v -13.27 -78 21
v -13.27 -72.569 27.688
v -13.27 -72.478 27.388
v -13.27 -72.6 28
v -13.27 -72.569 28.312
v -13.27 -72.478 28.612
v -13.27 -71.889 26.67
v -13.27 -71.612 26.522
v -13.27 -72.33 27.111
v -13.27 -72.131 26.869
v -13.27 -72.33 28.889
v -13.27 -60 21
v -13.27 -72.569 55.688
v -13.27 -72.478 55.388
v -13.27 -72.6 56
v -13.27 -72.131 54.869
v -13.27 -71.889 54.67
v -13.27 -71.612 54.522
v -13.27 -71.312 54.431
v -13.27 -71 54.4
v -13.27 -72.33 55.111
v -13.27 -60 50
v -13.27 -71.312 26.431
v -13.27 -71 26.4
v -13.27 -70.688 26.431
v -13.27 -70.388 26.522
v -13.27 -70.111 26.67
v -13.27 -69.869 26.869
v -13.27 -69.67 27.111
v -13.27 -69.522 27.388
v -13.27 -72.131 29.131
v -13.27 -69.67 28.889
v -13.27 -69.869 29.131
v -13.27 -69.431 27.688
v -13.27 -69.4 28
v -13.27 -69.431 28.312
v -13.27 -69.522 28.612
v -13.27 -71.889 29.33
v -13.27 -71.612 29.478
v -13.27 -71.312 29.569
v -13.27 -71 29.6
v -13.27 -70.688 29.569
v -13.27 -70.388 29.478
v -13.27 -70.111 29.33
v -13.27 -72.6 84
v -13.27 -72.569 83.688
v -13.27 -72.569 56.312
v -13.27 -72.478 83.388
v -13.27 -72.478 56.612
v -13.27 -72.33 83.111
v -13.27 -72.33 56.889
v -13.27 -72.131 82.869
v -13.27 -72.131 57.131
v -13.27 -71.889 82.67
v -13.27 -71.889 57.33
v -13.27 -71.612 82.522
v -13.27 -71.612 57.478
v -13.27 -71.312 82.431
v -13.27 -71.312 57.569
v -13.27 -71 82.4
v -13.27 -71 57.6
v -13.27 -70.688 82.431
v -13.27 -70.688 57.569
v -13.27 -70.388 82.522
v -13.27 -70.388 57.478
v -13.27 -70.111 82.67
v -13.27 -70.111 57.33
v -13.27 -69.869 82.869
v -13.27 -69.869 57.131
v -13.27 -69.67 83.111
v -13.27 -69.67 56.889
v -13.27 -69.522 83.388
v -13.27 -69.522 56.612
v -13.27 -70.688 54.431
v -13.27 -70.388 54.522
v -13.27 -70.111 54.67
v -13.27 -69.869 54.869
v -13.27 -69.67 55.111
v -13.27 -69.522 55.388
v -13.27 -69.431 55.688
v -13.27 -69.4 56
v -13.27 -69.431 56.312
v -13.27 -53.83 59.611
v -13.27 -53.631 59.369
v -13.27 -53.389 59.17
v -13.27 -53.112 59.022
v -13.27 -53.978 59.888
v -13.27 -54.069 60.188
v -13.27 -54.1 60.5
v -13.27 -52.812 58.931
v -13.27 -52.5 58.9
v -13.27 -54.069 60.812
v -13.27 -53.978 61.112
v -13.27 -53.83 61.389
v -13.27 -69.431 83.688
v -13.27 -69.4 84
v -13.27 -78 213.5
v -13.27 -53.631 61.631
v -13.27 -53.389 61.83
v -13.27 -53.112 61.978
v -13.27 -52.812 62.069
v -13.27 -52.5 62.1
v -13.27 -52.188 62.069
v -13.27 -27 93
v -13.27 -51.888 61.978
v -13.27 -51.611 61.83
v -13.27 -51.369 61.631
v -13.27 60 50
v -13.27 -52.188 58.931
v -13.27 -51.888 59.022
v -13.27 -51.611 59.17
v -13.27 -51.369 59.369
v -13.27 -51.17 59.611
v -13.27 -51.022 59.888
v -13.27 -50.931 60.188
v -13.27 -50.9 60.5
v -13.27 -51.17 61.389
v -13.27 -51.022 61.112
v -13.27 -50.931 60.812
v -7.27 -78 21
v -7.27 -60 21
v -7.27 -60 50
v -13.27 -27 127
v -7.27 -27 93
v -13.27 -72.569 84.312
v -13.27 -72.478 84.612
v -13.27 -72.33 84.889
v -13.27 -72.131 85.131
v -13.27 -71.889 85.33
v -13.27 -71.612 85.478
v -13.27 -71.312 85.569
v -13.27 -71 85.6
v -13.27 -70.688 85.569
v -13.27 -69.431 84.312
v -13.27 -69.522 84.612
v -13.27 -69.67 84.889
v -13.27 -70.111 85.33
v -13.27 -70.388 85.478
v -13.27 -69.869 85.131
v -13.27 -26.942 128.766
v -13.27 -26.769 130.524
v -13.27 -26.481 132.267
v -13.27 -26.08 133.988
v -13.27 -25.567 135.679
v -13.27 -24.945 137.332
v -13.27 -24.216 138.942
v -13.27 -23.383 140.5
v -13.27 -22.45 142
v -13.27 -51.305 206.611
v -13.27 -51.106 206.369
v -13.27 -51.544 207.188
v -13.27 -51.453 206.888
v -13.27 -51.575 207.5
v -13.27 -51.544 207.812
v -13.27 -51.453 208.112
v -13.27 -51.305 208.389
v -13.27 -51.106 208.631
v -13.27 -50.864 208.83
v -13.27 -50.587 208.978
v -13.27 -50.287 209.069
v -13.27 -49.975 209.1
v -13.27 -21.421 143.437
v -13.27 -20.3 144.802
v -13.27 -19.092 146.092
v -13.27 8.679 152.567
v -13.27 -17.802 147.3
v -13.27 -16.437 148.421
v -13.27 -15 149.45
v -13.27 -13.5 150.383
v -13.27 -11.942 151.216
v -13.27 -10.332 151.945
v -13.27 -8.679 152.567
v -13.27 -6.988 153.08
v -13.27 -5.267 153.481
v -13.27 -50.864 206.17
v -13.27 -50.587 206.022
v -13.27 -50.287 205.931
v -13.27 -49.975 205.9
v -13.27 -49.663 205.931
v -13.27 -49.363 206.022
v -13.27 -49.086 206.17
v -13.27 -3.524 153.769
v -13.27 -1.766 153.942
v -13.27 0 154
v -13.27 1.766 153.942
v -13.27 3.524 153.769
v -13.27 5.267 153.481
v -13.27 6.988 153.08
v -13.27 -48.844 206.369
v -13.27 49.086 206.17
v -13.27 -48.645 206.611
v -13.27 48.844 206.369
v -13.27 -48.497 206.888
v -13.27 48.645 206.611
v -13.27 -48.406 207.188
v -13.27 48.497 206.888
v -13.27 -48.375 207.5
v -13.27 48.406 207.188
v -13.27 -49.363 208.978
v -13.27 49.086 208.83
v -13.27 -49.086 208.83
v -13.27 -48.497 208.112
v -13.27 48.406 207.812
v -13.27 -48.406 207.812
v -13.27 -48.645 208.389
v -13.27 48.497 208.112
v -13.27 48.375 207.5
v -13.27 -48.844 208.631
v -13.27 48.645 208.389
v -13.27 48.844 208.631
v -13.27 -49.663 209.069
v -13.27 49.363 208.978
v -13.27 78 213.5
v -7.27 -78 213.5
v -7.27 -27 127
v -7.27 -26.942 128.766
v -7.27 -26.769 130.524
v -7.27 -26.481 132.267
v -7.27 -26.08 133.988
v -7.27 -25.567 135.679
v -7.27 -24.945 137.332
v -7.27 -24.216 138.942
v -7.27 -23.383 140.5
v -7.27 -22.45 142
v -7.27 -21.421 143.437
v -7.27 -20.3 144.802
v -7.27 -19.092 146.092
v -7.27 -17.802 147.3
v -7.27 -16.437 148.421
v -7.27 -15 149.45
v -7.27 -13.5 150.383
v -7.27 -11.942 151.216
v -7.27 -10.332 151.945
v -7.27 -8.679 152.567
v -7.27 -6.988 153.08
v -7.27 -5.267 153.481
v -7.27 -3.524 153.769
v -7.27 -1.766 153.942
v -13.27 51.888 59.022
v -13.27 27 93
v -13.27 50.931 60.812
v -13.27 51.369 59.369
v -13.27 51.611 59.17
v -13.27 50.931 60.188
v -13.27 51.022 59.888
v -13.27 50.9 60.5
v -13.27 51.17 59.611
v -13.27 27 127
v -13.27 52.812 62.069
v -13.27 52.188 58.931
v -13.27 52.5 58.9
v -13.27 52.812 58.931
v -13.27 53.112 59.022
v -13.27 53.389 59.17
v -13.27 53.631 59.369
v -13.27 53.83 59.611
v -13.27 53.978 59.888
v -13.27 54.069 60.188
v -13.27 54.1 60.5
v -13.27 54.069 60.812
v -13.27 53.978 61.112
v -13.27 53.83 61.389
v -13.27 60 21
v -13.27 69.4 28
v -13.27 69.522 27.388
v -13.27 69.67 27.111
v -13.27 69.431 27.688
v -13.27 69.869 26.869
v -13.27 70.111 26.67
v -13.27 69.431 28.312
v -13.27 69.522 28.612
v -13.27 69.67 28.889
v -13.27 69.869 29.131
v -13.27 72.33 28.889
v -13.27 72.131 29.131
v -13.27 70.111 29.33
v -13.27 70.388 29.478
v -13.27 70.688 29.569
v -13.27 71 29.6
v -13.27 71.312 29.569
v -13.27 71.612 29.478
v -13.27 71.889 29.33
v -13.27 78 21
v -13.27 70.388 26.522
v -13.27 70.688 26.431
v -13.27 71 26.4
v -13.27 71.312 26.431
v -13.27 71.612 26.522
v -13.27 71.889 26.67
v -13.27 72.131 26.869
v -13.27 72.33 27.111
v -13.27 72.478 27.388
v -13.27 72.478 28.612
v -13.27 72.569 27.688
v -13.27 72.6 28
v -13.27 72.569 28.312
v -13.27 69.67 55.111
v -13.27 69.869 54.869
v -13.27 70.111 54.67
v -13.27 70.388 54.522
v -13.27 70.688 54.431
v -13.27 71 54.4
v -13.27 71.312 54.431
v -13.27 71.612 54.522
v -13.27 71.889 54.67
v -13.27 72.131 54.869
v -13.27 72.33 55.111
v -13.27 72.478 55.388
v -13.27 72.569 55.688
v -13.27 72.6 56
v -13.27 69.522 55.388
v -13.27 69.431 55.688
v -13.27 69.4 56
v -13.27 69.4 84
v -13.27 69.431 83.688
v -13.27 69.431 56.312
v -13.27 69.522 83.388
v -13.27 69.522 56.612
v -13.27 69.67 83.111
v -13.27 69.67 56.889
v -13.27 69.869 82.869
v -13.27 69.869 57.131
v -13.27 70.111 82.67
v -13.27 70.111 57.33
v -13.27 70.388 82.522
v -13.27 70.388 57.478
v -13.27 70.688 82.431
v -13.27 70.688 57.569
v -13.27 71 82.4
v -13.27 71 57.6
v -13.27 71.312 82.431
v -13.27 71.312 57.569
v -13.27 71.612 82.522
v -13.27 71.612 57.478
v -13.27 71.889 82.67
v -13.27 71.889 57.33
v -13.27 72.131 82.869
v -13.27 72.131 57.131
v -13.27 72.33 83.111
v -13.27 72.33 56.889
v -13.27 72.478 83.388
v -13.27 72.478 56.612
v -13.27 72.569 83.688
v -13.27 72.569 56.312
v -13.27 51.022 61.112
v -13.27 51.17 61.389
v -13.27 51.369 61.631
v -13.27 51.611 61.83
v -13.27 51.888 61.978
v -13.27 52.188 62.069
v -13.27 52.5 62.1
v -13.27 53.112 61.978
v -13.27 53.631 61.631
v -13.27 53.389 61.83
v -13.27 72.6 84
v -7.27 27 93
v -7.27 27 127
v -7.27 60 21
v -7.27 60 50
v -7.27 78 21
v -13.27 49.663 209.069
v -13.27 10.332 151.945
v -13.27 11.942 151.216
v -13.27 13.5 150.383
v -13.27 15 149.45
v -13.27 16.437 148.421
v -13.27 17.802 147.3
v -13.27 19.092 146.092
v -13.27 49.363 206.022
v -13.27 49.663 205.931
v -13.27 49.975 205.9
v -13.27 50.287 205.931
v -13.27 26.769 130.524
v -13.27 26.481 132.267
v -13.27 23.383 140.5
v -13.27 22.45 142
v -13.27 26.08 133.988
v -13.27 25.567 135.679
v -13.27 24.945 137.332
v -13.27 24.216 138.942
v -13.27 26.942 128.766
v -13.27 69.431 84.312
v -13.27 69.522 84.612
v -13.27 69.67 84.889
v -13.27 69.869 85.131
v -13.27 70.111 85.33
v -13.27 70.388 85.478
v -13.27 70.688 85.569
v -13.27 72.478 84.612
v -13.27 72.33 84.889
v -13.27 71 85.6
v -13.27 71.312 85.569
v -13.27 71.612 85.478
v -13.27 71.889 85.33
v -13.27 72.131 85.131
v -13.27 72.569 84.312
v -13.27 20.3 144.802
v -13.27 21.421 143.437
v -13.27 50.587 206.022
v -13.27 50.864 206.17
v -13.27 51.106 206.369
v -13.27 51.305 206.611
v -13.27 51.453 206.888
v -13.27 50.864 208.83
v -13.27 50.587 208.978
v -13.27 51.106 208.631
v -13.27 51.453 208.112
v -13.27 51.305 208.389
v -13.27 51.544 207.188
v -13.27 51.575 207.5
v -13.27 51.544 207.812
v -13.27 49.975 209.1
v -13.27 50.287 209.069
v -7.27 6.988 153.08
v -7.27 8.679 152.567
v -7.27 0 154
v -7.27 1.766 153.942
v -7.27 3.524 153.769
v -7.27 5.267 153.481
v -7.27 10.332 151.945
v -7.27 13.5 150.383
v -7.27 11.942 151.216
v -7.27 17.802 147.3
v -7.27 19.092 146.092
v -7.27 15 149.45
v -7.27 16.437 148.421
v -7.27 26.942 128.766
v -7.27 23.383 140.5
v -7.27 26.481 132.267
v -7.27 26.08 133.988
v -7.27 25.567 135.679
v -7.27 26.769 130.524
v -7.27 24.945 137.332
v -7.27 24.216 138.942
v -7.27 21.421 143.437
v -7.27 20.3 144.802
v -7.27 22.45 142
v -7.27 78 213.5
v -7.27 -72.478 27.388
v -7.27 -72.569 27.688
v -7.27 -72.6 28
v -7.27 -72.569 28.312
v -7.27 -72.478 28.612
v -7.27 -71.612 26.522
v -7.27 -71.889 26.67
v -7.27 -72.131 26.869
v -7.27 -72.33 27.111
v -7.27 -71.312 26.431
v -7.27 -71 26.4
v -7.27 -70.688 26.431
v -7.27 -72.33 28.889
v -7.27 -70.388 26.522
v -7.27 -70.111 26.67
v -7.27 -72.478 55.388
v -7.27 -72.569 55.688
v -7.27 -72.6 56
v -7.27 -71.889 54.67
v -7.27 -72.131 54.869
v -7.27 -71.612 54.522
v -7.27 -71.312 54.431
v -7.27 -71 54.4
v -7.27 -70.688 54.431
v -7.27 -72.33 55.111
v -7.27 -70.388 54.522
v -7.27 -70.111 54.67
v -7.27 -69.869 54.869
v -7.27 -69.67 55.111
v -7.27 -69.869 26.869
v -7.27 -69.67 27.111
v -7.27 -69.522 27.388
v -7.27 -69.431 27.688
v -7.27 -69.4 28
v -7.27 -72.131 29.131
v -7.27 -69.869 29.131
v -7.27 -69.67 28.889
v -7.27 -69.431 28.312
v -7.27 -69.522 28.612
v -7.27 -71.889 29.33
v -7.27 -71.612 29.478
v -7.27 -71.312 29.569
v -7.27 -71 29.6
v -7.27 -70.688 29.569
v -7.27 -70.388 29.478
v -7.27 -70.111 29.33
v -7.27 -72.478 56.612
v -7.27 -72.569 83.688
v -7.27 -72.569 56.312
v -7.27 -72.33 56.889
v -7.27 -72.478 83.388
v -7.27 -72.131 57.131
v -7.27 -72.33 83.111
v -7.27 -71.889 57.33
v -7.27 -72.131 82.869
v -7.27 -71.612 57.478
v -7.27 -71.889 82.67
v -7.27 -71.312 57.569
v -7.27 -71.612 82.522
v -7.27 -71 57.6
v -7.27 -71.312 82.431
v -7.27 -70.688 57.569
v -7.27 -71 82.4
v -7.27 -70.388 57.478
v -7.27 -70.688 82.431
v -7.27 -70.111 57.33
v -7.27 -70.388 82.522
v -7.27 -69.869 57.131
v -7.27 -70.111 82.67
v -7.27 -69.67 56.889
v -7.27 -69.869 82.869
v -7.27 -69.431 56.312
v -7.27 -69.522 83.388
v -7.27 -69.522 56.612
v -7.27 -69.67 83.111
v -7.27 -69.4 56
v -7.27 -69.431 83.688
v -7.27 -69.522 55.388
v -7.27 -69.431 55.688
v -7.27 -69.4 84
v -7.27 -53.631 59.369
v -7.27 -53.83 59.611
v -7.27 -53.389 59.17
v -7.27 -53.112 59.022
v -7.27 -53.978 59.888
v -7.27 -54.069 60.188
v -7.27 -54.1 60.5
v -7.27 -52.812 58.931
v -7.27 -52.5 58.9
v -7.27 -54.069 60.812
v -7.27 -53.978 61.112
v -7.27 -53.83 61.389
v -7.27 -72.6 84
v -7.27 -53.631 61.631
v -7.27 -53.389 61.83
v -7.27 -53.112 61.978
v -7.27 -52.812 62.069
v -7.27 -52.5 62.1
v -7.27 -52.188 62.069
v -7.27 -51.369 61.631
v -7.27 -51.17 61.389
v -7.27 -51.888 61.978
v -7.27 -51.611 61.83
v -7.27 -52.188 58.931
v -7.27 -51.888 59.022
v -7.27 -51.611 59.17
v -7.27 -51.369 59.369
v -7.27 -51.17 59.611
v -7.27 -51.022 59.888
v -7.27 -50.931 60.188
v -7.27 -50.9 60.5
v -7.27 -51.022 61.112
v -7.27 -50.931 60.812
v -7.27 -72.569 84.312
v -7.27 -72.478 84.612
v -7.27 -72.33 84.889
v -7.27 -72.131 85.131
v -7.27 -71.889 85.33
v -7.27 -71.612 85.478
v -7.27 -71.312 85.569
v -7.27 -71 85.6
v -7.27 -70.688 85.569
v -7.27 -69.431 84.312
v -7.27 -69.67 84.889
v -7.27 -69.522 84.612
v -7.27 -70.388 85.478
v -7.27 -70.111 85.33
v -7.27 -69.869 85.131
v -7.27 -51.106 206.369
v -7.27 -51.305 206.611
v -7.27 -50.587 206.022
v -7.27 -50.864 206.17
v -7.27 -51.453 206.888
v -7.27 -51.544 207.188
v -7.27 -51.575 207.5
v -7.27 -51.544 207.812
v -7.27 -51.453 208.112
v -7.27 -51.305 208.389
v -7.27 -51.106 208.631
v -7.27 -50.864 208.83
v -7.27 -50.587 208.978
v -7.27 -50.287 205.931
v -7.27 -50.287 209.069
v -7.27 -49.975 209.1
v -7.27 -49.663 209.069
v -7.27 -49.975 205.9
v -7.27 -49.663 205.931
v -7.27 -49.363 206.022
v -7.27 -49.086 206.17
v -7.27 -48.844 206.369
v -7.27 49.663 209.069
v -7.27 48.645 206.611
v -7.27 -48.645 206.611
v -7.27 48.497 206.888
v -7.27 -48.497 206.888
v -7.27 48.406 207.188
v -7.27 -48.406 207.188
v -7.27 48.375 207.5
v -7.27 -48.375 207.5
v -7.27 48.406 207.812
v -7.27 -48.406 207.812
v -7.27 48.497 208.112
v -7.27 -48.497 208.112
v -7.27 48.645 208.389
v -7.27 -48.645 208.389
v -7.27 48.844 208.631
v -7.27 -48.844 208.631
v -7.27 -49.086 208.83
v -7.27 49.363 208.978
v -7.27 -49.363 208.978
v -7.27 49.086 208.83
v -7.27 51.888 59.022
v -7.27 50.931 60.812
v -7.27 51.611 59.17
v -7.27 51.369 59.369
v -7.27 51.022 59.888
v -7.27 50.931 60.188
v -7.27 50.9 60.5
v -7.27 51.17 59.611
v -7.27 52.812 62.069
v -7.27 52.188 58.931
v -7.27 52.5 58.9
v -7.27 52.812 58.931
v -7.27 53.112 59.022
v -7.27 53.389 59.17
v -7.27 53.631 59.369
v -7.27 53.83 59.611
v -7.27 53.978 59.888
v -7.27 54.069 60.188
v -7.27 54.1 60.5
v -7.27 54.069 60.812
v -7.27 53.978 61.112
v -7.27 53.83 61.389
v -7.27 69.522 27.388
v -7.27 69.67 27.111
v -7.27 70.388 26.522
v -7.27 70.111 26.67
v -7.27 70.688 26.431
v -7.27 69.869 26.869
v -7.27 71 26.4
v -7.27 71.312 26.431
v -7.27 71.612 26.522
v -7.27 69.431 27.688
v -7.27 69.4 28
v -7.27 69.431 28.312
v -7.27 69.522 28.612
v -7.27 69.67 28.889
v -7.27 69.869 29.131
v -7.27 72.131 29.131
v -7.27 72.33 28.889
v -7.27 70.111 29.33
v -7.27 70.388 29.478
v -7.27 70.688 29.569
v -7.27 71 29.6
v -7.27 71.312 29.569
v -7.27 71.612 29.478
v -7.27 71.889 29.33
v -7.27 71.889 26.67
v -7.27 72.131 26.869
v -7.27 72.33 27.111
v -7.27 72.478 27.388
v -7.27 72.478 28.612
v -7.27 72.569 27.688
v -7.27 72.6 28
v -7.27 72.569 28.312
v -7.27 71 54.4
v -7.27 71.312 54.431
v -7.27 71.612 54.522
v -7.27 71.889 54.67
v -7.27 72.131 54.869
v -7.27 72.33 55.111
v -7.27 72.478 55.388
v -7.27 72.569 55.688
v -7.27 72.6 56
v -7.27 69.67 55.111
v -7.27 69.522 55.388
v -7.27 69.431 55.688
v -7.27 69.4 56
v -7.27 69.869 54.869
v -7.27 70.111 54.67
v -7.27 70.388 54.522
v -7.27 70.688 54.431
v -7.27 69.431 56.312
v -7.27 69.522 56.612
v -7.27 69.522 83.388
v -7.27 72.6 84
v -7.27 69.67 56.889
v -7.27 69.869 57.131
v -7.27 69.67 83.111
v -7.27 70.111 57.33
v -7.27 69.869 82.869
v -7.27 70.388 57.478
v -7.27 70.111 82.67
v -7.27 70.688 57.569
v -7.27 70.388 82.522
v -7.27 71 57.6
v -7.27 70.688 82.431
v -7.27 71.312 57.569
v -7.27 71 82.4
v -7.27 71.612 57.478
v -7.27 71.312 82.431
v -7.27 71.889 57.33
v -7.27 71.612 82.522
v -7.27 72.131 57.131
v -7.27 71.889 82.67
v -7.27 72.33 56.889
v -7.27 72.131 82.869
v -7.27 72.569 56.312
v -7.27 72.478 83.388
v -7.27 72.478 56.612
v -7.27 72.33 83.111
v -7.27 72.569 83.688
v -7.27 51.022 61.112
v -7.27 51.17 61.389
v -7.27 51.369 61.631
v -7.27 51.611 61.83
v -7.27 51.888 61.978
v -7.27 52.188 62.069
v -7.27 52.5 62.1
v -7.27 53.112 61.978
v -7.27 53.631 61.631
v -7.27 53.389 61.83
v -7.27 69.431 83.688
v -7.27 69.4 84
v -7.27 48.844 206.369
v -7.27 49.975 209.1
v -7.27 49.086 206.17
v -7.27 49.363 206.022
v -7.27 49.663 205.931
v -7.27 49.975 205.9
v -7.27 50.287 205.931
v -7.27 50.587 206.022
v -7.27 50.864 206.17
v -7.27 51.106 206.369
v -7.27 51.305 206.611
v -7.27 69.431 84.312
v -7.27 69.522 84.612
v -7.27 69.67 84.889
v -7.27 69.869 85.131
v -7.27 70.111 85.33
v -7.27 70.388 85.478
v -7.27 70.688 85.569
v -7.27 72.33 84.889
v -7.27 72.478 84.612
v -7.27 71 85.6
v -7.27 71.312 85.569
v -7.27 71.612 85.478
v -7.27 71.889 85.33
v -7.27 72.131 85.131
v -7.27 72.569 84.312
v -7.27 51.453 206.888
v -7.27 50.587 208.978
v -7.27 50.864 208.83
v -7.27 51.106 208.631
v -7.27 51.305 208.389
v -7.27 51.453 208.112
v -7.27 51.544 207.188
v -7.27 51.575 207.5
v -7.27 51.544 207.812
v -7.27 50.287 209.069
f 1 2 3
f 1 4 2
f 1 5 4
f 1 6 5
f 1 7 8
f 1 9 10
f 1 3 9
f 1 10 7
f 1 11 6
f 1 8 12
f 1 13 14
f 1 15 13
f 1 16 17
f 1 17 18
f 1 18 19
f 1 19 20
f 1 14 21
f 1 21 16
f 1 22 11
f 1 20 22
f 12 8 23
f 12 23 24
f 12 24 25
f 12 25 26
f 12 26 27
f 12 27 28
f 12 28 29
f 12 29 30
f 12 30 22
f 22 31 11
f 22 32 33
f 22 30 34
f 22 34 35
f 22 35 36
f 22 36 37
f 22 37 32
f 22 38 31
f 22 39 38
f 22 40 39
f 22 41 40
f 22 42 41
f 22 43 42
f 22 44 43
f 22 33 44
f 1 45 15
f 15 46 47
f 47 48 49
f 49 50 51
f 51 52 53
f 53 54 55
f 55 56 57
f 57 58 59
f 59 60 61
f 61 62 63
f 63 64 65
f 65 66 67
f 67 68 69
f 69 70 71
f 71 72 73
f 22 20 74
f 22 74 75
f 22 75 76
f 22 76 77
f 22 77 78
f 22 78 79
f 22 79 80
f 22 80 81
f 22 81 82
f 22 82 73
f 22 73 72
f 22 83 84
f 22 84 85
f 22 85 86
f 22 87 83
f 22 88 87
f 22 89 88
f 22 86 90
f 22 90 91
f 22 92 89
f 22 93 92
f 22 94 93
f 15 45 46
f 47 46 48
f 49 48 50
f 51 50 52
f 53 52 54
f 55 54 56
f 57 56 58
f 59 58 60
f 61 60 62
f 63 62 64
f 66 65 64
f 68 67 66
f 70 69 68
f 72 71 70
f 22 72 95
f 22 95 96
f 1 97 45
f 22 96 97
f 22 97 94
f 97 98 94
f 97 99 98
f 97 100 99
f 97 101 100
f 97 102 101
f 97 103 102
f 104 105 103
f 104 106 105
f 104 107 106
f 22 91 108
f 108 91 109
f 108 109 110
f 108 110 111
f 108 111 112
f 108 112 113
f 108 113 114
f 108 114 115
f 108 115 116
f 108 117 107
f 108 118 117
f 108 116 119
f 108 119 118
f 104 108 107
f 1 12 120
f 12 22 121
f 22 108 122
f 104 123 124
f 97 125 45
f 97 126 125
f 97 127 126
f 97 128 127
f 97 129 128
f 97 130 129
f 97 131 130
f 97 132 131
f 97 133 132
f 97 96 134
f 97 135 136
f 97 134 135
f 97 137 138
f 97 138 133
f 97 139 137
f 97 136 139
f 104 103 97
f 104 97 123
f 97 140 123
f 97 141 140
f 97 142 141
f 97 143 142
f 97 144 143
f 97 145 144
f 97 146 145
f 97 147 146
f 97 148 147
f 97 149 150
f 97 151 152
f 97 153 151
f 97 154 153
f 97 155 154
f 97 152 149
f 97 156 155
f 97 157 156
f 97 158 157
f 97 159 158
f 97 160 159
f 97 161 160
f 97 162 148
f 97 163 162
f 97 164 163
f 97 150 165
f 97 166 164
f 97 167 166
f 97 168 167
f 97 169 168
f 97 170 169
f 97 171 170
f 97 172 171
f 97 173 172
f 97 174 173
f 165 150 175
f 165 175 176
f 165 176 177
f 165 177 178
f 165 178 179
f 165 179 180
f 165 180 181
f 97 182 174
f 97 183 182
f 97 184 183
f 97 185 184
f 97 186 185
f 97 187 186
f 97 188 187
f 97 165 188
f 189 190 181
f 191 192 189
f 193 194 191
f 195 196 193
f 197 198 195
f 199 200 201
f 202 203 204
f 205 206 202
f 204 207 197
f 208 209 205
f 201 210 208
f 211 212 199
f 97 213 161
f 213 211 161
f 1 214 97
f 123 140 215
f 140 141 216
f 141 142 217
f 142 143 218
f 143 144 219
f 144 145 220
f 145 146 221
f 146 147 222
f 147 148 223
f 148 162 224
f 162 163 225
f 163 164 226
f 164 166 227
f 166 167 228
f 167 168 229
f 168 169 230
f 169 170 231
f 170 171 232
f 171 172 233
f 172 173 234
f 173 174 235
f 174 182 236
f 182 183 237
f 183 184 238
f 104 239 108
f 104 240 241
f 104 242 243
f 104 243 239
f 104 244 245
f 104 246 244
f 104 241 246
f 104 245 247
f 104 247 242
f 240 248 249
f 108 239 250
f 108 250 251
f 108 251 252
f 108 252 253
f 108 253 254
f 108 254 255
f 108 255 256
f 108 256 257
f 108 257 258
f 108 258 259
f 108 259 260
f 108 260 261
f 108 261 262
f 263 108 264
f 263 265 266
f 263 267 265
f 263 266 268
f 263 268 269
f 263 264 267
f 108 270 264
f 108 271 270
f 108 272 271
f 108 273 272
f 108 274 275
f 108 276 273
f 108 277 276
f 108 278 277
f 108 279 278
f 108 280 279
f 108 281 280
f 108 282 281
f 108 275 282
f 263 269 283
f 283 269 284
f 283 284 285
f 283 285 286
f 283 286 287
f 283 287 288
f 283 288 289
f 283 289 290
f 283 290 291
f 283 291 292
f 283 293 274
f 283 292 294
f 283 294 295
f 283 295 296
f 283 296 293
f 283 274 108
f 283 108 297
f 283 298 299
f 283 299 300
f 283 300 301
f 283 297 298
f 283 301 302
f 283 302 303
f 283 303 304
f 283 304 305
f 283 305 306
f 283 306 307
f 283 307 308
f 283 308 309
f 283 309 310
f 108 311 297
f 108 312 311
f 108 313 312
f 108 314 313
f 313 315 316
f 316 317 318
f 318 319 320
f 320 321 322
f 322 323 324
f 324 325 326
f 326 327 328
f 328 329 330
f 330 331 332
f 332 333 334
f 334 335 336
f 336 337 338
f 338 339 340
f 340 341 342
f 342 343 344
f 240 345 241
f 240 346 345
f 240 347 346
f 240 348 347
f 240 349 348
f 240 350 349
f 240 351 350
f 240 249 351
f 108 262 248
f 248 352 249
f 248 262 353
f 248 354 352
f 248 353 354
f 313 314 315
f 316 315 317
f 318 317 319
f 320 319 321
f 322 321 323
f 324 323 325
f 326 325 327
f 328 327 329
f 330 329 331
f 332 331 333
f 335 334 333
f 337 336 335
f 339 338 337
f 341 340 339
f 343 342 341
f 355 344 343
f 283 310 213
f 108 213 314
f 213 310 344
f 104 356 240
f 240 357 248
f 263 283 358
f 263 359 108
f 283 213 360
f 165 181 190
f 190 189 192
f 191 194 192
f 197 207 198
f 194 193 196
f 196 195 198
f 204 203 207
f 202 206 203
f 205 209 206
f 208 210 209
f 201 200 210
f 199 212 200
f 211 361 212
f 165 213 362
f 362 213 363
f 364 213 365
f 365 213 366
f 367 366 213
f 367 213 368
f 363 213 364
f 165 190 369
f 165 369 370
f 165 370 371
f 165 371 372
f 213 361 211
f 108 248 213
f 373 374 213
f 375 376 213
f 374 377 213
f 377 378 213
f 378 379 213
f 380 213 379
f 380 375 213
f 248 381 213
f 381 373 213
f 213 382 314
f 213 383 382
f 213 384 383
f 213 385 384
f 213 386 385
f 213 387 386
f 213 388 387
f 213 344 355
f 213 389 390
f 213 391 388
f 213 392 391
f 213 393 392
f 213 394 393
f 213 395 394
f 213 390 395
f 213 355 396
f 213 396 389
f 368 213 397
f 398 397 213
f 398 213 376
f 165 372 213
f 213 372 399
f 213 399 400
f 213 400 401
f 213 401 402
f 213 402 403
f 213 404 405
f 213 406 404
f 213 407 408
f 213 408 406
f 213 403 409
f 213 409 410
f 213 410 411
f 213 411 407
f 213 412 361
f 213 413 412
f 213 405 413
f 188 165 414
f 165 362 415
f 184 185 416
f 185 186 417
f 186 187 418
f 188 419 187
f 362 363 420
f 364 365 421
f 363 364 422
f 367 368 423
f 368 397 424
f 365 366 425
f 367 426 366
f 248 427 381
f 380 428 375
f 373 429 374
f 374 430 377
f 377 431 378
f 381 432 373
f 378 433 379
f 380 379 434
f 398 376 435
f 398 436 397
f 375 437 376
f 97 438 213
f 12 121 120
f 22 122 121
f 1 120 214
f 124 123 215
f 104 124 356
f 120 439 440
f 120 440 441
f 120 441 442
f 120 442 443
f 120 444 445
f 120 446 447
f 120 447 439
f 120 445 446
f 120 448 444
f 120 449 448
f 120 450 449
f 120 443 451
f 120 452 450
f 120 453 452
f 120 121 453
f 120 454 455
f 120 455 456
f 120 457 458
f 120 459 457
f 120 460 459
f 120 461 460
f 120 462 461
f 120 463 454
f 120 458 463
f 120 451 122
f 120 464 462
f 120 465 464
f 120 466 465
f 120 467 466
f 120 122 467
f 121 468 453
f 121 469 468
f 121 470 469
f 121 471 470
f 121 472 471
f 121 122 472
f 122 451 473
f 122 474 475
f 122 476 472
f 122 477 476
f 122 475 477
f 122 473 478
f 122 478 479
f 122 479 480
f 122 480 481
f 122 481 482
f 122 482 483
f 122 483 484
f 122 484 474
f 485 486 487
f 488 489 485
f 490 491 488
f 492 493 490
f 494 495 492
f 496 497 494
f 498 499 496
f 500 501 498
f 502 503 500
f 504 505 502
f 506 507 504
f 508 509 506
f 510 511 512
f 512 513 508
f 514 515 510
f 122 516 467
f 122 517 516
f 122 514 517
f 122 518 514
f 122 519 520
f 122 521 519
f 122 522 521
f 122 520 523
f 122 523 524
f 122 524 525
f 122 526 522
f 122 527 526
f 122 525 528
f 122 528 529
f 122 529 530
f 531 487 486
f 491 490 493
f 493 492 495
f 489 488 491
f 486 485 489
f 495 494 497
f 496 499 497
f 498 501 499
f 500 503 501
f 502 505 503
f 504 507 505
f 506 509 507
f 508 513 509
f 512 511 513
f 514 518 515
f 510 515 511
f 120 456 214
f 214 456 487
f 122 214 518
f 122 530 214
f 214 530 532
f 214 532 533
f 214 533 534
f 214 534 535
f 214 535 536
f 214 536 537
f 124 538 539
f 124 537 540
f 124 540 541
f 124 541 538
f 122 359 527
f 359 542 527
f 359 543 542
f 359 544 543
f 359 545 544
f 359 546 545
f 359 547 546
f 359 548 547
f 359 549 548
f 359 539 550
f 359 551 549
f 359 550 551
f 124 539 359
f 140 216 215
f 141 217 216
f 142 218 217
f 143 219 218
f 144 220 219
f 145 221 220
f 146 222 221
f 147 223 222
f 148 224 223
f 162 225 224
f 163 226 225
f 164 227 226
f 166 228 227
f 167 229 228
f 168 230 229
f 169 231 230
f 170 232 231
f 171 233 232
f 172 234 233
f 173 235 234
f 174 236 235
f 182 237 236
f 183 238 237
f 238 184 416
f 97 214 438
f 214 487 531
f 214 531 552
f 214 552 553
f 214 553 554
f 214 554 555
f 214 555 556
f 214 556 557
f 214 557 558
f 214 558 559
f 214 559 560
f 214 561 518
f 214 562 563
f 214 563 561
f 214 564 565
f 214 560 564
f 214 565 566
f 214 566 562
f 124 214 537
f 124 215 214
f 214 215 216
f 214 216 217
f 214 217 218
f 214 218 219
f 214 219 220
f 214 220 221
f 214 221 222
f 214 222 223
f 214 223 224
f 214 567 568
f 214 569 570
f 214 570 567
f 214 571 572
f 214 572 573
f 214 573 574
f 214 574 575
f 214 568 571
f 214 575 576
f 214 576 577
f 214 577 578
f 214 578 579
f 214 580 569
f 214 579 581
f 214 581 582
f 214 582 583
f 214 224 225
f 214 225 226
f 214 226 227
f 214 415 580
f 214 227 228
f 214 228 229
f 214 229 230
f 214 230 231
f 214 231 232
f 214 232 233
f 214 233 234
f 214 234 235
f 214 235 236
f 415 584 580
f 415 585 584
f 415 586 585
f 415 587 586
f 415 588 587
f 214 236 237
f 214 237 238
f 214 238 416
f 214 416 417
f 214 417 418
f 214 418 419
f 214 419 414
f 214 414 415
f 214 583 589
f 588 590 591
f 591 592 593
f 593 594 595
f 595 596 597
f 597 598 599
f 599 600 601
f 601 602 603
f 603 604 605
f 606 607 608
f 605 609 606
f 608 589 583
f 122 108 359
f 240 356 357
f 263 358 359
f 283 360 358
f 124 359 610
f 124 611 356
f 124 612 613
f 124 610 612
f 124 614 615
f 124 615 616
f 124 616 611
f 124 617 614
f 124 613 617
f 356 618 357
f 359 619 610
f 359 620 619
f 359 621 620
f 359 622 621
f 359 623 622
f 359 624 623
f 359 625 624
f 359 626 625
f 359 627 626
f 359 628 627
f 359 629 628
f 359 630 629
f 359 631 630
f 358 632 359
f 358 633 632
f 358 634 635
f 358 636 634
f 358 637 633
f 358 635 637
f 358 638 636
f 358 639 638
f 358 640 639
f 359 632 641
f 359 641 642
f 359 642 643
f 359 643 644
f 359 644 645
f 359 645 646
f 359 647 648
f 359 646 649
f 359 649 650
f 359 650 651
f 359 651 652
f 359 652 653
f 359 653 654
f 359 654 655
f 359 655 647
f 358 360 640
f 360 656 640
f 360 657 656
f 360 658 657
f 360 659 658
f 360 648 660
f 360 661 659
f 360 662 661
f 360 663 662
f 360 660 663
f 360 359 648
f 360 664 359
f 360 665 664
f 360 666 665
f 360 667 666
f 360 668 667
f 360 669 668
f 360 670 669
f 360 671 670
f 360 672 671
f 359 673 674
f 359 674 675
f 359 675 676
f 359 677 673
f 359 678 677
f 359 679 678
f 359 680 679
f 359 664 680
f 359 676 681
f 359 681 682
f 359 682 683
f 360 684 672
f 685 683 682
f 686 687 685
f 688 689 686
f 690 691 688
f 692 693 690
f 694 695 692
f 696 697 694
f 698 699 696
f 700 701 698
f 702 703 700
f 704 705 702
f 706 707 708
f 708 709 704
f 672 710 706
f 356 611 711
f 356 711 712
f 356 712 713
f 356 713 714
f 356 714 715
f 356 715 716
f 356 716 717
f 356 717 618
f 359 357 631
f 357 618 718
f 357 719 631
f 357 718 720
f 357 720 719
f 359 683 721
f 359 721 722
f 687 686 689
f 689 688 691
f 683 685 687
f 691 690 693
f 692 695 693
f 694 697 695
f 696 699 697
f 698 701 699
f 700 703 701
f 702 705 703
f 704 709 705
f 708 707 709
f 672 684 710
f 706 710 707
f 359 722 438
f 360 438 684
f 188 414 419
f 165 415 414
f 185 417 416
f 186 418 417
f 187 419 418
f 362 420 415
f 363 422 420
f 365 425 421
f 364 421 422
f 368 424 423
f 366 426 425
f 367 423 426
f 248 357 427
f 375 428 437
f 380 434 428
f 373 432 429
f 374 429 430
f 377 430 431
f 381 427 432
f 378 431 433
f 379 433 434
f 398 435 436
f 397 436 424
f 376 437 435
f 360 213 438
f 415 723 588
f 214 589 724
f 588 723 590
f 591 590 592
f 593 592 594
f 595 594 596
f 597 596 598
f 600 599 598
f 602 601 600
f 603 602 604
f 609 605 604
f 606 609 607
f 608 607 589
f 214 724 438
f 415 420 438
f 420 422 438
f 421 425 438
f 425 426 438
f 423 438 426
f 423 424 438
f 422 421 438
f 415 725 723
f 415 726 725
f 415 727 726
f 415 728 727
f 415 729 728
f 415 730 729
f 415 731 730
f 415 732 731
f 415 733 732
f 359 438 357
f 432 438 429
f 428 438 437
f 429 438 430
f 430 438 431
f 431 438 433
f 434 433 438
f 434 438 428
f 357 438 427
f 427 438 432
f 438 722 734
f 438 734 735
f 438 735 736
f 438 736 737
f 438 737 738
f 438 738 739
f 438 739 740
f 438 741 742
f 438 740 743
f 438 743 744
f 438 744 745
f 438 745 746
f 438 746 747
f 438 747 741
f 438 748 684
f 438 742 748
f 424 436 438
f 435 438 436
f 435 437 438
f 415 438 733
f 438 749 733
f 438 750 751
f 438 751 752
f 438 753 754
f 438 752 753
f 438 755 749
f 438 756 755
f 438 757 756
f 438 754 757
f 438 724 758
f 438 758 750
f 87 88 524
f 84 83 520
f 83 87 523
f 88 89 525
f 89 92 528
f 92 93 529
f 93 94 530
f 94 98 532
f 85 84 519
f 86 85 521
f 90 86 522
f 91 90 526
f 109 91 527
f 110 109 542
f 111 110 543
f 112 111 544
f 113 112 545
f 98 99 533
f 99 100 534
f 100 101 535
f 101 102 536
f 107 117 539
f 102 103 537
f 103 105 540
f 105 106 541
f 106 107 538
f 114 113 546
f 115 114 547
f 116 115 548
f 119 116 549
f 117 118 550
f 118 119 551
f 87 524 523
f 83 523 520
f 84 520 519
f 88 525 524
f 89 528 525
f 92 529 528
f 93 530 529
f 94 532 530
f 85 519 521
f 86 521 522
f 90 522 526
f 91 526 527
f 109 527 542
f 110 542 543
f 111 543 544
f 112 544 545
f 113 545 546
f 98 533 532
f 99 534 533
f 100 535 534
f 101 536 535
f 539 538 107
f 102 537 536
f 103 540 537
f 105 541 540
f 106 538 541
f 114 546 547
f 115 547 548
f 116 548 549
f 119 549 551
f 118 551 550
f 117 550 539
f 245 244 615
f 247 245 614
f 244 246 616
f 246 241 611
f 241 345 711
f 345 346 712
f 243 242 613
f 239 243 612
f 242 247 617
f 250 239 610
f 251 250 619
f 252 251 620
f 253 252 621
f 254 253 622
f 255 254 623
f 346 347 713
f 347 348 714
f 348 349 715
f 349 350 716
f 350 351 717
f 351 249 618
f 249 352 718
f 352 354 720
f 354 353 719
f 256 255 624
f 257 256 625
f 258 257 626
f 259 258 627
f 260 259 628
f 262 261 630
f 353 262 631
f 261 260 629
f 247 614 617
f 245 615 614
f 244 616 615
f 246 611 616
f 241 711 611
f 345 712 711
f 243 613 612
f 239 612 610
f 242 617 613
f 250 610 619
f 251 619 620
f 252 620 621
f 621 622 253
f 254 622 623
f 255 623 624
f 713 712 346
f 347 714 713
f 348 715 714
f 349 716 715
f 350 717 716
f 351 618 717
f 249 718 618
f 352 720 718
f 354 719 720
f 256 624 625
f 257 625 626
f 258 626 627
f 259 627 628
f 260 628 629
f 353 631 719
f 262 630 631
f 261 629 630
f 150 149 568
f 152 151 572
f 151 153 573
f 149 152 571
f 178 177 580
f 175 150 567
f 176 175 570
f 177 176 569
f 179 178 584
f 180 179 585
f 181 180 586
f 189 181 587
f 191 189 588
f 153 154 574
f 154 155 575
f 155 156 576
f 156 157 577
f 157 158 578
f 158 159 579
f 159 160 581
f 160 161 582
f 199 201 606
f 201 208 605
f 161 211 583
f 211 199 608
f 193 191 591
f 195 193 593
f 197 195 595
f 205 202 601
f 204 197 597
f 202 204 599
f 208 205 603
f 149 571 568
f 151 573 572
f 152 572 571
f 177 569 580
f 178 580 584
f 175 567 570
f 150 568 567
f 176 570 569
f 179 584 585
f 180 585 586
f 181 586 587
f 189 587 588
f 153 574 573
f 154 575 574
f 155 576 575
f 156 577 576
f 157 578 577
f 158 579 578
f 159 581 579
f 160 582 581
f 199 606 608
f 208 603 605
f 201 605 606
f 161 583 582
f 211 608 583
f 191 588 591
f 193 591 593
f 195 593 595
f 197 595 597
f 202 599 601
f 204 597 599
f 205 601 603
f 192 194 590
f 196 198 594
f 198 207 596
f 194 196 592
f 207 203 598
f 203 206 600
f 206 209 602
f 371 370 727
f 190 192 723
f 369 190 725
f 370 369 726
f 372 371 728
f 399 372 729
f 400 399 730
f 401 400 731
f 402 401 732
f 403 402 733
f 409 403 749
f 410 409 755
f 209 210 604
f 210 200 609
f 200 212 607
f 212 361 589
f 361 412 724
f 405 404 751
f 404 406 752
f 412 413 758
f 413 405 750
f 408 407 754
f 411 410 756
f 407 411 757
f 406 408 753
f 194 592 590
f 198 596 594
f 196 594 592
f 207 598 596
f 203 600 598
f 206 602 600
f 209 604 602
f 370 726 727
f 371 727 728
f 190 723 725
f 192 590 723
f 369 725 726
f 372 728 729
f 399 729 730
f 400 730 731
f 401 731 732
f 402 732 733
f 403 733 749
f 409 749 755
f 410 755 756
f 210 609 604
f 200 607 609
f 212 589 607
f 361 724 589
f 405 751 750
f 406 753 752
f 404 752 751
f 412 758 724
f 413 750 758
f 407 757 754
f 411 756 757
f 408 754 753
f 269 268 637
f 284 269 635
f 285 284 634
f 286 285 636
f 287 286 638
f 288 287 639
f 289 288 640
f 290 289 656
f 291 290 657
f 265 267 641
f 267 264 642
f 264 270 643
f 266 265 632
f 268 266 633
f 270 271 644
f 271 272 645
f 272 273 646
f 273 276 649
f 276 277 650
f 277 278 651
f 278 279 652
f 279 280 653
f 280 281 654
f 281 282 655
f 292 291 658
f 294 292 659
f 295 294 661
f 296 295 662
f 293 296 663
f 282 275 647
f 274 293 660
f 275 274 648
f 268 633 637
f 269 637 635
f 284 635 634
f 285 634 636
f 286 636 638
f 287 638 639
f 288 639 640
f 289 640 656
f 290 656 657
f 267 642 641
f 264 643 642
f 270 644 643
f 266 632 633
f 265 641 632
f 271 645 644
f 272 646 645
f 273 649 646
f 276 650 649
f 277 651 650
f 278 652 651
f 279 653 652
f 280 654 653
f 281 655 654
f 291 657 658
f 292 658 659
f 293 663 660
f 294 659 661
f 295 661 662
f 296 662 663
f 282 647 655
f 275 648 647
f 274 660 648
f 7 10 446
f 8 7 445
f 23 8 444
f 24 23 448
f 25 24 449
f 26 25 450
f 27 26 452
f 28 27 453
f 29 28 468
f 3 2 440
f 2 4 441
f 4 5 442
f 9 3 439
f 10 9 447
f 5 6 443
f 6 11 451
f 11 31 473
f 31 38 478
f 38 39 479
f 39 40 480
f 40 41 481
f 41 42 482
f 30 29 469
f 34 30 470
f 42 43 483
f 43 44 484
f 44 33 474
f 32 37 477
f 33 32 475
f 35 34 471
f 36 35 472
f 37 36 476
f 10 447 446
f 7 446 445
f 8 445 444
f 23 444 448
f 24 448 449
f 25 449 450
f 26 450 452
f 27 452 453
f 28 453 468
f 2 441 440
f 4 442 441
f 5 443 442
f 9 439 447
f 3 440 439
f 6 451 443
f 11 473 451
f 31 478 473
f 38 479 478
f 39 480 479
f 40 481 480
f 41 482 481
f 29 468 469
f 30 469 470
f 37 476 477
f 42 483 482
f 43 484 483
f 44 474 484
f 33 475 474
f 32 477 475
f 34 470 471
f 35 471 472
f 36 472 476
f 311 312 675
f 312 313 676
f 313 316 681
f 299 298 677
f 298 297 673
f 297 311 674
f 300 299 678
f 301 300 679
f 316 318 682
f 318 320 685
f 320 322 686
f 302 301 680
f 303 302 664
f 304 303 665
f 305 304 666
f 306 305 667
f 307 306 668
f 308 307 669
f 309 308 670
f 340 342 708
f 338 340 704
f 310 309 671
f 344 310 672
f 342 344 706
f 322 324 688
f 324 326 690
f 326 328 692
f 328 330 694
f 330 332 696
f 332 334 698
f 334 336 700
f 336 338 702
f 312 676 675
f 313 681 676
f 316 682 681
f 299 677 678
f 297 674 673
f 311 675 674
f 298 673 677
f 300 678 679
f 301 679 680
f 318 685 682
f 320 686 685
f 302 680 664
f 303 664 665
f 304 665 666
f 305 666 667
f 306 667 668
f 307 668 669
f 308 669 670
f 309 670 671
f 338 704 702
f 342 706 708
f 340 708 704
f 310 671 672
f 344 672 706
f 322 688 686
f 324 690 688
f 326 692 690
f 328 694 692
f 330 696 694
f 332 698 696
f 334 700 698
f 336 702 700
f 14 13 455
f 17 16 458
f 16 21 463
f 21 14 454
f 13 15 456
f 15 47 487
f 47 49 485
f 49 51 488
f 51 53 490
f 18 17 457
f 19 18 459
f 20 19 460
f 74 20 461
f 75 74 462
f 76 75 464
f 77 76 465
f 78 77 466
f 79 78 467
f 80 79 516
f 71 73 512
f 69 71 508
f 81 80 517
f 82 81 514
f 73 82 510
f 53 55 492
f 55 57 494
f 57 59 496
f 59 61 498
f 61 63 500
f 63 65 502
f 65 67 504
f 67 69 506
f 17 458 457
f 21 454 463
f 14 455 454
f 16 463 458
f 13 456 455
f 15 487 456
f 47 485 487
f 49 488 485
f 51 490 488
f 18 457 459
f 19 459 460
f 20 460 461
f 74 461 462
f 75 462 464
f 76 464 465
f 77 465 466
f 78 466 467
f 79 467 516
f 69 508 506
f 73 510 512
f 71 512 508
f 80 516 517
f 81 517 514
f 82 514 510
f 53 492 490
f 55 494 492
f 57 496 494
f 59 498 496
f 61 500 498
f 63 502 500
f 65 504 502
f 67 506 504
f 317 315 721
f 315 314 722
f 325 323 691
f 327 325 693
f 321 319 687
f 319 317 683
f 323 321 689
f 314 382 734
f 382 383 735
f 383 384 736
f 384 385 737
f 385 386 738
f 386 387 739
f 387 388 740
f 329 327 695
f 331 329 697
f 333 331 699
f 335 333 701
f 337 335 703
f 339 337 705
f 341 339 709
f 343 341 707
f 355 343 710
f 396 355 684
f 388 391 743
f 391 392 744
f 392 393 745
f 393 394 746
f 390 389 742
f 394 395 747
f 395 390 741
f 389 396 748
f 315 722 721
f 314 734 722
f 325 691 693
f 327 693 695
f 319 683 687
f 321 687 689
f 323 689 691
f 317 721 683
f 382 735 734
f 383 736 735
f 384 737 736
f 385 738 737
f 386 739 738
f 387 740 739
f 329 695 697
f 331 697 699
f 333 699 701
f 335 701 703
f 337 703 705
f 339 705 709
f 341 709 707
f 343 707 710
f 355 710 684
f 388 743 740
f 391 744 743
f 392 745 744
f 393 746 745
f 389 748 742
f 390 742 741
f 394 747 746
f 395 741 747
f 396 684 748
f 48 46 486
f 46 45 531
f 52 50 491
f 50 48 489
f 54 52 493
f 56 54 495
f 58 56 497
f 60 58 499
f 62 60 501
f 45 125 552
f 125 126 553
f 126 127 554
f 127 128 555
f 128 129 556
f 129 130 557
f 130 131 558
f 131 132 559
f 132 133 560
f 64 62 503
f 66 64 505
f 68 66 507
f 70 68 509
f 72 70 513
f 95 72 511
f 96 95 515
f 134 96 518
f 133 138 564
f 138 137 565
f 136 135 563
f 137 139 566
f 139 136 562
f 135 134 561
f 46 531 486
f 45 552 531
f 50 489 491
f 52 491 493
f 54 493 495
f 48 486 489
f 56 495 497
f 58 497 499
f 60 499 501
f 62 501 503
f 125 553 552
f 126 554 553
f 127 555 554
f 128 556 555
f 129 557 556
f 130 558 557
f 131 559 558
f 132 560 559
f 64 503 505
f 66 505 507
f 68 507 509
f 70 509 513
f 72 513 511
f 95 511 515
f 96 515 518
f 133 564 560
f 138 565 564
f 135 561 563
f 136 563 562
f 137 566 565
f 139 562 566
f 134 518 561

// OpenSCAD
// screen_plate — v2 屏幕支架两件套: 屏幕板 (与 build_plate.py 同参)
// 局部系 = 盘坐标系, Z0 = 盘顶面; 板 X -13.27..-7.27, Y ±78, Z 21..213.5
// 屏底沿=盘面+50; 板底中央 |Y|≤60 (12cm) 开缺口到 盘面+50 (2026-07-03 深夜)

SCREEN_T = 7.27;
FIN_T    = 6;
FIN_X1   = -SCREEN_T;          // -7.27 前面 (贴屏背)
FIN_X0   = FIN_X1 - FIN_T;     // -13.27
FIN_HW   = 78;   // 162→156, 让位筋墙 (2026-07-03)
PLATE_Z0 = 21;   // 翼板底边
NOTCH_HW = 60; NOTCH_TOP = 50;           // 底部中央让位缺口
FIN_TOP  = 213.5;
WIN_HW = 27; WIN_Z0 = 93; WIN_Z1 = 127;
M3 = 3.2;
JOINT_Y = 71;  JOINT_Z = [28, 56, 84];   // 直通孔, 无沉头 (2026-07-03)
SCREEN_HOLES = [[-52.5, 60.5], [52.5, 60.5], [-49.975, 207.5], [49.975, 207.5]];

module plate_profile() {   // (Y,Z)
    difference() {
        translate([-FIN_HW, PLATE_Z0]) square([2*FIN_HW, FIN_TOP - PLATE_Z0]);
        union() {  // 接口窗 + 顶拱
            translate([-WIN_HW, WIN_Z0]) square([2*WIN_HW, WIN_Z1 - WIN_Z0]);
            translate([0, WIN_Z1]) circle(r = WIN_HW, $fn = 96);
        }
        translate([-NOTCH_HW, PLATE_Z0-1]) square([2*NOTCH_HW, NOTCH_TOP-PLATE_Z0+1]);  // 底部中央缺口
        for (h = SCREEN_HOLES) translate(h) circle(d = M3, $fn = 32);
        for (z = JOINT_Z) for (sy = [-1, 1]) translate([sy*JOINT_Y, z]) circle(d = M3, $fn = 32);
    }
}

translate([FIN_X0, 0, 0]) rotate([90, 0, 90]) linear_extrude(FIN_T) plate_profile();
